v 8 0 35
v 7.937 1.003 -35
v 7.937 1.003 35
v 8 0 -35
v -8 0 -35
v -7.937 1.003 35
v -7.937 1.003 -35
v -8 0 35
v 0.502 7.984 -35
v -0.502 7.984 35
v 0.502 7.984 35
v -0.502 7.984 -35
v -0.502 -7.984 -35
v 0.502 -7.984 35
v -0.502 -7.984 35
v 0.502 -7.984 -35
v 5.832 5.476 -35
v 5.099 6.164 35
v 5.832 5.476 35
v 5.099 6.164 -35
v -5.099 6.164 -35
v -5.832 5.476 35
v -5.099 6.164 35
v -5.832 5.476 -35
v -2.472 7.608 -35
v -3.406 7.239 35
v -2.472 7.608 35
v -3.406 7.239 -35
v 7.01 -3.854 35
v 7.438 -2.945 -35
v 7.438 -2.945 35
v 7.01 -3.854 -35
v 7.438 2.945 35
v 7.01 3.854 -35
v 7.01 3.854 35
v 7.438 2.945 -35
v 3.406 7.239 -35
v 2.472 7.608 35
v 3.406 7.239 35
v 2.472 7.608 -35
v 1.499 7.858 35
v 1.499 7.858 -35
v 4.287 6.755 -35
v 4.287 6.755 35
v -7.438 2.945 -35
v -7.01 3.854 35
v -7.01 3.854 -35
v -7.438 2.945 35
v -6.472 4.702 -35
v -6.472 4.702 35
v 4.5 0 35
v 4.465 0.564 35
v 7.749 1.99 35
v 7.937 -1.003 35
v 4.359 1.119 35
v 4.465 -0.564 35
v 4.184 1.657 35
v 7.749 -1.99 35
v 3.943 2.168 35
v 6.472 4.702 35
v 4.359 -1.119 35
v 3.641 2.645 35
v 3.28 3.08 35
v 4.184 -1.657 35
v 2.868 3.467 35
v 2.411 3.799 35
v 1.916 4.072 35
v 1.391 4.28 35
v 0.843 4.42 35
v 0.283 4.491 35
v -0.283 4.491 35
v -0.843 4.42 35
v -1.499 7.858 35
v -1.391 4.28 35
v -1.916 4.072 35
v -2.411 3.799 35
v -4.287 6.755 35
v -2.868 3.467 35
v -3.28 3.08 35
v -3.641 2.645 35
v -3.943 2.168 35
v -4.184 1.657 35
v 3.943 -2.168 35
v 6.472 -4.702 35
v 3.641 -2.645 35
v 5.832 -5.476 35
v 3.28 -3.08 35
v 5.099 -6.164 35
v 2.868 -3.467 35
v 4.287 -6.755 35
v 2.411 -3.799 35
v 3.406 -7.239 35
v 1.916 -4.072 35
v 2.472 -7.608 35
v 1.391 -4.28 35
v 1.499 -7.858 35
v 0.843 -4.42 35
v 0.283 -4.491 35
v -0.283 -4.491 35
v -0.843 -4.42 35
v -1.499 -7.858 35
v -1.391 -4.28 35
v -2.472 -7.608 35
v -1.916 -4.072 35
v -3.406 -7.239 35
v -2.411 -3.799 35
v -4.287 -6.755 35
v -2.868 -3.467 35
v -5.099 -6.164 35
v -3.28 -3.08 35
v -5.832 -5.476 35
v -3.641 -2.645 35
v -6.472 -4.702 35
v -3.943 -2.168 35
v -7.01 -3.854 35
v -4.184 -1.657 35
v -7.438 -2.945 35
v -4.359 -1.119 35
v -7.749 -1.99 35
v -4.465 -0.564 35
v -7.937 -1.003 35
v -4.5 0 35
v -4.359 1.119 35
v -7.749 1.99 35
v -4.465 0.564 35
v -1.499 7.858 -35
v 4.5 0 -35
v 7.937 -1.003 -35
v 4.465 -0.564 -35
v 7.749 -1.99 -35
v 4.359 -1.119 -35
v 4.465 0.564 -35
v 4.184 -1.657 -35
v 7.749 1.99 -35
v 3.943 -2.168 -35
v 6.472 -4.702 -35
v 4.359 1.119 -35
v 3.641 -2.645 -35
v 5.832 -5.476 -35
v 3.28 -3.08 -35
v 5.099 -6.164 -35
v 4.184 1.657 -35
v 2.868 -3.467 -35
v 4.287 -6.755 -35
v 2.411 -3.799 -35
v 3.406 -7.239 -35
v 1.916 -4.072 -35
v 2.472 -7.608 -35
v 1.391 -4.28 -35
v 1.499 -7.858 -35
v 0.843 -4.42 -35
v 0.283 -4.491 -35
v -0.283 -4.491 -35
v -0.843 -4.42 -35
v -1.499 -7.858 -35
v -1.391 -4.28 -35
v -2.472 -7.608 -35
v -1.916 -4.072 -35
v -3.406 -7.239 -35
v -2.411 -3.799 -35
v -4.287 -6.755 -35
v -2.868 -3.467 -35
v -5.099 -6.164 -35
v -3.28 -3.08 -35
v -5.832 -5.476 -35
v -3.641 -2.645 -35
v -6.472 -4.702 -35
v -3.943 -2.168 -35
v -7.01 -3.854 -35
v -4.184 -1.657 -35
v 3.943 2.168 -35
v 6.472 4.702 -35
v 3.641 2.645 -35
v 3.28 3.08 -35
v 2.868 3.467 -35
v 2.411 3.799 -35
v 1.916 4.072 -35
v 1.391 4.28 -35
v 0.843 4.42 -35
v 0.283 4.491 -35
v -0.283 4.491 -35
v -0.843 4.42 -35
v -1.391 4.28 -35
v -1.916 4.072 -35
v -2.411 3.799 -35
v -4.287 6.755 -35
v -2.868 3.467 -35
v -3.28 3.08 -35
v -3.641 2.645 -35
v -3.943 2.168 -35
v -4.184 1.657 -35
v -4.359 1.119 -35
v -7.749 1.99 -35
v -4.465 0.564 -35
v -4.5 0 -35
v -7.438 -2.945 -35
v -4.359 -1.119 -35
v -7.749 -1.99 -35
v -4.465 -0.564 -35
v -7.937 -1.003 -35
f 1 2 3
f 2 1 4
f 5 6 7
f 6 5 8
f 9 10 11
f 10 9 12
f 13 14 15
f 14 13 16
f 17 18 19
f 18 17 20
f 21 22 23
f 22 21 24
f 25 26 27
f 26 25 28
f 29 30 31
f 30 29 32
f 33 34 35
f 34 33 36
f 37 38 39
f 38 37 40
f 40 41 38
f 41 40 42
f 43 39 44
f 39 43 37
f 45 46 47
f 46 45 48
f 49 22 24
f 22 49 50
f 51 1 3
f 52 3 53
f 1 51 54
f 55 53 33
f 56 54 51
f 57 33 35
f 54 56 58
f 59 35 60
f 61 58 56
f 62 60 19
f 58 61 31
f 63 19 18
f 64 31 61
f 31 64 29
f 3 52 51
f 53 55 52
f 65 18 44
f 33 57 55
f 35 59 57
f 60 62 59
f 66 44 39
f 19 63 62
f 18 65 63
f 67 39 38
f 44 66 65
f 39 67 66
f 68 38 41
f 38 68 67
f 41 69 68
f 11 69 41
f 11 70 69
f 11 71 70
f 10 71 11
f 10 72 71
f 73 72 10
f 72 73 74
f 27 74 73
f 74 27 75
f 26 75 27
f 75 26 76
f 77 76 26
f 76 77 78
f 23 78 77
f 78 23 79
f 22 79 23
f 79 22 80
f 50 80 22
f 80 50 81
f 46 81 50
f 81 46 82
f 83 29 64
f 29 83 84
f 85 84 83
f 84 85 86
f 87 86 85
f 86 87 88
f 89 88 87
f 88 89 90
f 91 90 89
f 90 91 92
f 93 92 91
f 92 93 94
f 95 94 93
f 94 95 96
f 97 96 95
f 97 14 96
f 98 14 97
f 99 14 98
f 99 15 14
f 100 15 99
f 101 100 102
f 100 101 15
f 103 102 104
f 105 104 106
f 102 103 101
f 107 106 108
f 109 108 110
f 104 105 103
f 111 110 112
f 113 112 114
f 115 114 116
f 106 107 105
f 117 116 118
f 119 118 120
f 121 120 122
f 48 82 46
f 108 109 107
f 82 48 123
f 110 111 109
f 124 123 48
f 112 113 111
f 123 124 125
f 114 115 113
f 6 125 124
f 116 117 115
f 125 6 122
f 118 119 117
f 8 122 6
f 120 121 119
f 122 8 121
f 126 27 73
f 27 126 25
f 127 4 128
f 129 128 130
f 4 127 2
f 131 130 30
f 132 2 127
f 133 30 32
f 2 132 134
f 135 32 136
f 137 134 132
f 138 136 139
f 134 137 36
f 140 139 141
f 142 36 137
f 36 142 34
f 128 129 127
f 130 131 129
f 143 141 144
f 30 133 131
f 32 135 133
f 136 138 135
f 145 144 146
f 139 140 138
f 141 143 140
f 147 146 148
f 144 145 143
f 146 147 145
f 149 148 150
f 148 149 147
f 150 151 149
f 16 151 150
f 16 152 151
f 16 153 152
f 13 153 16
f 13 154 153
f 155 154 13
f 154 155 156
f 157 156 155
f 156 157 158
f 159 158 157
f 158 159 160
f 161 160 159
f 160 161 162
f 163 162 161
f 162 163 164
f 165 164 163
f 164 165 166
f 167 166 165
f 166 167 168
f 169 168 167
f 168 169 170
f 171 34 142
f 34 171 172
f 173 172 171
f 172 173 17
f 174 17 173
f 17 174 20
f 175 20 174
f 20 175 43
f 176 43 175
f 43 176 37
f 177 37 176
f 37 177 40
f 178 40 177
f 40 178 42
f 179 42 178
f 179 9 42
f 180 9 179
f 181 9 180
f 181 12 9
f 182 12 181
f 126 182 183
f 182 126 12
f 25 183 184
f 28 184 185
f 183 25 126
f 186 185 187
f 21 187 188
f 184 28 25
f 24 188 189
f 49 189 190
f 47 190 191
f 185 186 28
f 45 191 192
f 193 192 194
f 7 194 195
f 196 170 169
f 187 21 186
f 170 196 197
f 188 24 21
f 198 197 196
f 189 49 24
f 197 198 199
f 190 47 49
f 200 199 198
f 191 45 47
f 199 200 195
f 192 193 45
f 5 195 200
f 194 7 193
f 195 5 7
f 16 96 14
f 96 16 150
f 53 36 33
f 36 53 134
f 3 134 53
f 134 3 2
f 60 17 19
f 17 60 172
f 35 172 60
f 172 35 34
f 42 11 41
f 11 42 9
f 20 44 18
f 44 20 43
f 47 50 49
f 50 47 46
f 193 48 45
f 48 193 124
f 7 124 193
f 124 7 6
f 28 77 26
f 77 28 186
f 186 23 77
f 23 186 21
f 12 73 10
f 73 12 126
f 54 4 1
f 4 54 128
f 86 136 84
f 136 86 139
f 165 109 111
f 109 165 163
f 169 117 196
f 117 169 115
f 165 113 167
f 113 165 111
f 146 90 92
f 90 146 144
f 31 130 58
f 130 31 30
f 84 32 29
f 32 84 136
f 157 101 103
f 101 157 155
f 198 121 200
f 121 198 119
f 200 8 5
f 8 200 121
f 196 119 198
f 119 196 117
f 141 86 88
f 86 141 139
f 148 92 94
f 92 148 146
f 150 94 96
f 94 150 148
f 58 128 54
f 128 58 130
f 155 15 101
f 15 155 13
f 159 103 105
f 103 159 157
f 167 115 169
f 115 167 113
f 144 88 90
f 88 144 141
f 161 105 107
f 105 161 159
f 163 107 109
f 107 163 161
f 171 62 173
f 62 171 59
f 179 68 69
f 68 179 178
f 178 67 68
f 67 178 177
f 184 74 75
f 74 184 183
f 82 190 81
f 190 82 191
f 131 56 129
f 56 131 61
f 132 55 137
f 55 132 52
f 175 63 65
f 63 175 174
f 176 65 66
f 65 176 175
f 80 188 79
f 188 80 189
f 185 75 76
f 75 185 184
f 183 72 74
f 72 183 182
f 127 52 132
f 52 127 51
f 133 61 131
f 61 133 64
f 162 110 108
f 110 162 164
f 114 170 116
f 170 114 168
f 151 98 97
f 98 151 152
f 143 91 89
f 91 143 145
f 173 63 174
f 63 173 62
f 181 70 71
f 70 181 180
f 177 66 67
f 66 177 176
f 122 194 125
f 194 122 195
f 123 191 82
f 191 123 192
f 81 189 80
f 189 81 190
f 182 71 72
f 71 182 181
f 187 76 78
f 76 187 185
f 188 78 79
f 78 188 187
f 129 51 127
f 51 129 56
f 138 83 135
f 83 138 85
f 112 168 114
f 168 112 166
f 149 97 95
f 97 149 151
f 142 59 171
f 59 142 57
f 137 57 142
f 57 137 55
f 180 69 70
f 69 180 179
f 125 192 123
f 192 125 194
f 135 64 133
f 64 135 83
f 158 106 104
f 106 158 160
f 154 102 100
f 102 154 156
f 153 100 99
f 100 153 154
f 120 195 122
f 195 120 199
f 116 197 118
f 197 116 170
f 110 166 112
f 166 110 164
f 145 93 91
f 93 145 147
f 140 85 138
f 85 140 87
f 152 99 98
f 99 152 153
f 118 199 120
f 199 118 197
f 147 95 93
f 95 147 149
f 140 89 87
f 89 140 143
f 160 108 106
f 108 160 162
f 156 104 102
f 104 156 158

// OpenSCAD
$fn = 50;


difference() {
	union() {
		translate(v = [0, 0, -35.0000000000]) {
			cylinder(h = 70, r = 8.0000000000);
		}
	}
	union() {
		translate(v = [0, 0, -100.0000000000]) {
			cylinder(h = 200, r = 4.5000000000);
		}
	}
}
